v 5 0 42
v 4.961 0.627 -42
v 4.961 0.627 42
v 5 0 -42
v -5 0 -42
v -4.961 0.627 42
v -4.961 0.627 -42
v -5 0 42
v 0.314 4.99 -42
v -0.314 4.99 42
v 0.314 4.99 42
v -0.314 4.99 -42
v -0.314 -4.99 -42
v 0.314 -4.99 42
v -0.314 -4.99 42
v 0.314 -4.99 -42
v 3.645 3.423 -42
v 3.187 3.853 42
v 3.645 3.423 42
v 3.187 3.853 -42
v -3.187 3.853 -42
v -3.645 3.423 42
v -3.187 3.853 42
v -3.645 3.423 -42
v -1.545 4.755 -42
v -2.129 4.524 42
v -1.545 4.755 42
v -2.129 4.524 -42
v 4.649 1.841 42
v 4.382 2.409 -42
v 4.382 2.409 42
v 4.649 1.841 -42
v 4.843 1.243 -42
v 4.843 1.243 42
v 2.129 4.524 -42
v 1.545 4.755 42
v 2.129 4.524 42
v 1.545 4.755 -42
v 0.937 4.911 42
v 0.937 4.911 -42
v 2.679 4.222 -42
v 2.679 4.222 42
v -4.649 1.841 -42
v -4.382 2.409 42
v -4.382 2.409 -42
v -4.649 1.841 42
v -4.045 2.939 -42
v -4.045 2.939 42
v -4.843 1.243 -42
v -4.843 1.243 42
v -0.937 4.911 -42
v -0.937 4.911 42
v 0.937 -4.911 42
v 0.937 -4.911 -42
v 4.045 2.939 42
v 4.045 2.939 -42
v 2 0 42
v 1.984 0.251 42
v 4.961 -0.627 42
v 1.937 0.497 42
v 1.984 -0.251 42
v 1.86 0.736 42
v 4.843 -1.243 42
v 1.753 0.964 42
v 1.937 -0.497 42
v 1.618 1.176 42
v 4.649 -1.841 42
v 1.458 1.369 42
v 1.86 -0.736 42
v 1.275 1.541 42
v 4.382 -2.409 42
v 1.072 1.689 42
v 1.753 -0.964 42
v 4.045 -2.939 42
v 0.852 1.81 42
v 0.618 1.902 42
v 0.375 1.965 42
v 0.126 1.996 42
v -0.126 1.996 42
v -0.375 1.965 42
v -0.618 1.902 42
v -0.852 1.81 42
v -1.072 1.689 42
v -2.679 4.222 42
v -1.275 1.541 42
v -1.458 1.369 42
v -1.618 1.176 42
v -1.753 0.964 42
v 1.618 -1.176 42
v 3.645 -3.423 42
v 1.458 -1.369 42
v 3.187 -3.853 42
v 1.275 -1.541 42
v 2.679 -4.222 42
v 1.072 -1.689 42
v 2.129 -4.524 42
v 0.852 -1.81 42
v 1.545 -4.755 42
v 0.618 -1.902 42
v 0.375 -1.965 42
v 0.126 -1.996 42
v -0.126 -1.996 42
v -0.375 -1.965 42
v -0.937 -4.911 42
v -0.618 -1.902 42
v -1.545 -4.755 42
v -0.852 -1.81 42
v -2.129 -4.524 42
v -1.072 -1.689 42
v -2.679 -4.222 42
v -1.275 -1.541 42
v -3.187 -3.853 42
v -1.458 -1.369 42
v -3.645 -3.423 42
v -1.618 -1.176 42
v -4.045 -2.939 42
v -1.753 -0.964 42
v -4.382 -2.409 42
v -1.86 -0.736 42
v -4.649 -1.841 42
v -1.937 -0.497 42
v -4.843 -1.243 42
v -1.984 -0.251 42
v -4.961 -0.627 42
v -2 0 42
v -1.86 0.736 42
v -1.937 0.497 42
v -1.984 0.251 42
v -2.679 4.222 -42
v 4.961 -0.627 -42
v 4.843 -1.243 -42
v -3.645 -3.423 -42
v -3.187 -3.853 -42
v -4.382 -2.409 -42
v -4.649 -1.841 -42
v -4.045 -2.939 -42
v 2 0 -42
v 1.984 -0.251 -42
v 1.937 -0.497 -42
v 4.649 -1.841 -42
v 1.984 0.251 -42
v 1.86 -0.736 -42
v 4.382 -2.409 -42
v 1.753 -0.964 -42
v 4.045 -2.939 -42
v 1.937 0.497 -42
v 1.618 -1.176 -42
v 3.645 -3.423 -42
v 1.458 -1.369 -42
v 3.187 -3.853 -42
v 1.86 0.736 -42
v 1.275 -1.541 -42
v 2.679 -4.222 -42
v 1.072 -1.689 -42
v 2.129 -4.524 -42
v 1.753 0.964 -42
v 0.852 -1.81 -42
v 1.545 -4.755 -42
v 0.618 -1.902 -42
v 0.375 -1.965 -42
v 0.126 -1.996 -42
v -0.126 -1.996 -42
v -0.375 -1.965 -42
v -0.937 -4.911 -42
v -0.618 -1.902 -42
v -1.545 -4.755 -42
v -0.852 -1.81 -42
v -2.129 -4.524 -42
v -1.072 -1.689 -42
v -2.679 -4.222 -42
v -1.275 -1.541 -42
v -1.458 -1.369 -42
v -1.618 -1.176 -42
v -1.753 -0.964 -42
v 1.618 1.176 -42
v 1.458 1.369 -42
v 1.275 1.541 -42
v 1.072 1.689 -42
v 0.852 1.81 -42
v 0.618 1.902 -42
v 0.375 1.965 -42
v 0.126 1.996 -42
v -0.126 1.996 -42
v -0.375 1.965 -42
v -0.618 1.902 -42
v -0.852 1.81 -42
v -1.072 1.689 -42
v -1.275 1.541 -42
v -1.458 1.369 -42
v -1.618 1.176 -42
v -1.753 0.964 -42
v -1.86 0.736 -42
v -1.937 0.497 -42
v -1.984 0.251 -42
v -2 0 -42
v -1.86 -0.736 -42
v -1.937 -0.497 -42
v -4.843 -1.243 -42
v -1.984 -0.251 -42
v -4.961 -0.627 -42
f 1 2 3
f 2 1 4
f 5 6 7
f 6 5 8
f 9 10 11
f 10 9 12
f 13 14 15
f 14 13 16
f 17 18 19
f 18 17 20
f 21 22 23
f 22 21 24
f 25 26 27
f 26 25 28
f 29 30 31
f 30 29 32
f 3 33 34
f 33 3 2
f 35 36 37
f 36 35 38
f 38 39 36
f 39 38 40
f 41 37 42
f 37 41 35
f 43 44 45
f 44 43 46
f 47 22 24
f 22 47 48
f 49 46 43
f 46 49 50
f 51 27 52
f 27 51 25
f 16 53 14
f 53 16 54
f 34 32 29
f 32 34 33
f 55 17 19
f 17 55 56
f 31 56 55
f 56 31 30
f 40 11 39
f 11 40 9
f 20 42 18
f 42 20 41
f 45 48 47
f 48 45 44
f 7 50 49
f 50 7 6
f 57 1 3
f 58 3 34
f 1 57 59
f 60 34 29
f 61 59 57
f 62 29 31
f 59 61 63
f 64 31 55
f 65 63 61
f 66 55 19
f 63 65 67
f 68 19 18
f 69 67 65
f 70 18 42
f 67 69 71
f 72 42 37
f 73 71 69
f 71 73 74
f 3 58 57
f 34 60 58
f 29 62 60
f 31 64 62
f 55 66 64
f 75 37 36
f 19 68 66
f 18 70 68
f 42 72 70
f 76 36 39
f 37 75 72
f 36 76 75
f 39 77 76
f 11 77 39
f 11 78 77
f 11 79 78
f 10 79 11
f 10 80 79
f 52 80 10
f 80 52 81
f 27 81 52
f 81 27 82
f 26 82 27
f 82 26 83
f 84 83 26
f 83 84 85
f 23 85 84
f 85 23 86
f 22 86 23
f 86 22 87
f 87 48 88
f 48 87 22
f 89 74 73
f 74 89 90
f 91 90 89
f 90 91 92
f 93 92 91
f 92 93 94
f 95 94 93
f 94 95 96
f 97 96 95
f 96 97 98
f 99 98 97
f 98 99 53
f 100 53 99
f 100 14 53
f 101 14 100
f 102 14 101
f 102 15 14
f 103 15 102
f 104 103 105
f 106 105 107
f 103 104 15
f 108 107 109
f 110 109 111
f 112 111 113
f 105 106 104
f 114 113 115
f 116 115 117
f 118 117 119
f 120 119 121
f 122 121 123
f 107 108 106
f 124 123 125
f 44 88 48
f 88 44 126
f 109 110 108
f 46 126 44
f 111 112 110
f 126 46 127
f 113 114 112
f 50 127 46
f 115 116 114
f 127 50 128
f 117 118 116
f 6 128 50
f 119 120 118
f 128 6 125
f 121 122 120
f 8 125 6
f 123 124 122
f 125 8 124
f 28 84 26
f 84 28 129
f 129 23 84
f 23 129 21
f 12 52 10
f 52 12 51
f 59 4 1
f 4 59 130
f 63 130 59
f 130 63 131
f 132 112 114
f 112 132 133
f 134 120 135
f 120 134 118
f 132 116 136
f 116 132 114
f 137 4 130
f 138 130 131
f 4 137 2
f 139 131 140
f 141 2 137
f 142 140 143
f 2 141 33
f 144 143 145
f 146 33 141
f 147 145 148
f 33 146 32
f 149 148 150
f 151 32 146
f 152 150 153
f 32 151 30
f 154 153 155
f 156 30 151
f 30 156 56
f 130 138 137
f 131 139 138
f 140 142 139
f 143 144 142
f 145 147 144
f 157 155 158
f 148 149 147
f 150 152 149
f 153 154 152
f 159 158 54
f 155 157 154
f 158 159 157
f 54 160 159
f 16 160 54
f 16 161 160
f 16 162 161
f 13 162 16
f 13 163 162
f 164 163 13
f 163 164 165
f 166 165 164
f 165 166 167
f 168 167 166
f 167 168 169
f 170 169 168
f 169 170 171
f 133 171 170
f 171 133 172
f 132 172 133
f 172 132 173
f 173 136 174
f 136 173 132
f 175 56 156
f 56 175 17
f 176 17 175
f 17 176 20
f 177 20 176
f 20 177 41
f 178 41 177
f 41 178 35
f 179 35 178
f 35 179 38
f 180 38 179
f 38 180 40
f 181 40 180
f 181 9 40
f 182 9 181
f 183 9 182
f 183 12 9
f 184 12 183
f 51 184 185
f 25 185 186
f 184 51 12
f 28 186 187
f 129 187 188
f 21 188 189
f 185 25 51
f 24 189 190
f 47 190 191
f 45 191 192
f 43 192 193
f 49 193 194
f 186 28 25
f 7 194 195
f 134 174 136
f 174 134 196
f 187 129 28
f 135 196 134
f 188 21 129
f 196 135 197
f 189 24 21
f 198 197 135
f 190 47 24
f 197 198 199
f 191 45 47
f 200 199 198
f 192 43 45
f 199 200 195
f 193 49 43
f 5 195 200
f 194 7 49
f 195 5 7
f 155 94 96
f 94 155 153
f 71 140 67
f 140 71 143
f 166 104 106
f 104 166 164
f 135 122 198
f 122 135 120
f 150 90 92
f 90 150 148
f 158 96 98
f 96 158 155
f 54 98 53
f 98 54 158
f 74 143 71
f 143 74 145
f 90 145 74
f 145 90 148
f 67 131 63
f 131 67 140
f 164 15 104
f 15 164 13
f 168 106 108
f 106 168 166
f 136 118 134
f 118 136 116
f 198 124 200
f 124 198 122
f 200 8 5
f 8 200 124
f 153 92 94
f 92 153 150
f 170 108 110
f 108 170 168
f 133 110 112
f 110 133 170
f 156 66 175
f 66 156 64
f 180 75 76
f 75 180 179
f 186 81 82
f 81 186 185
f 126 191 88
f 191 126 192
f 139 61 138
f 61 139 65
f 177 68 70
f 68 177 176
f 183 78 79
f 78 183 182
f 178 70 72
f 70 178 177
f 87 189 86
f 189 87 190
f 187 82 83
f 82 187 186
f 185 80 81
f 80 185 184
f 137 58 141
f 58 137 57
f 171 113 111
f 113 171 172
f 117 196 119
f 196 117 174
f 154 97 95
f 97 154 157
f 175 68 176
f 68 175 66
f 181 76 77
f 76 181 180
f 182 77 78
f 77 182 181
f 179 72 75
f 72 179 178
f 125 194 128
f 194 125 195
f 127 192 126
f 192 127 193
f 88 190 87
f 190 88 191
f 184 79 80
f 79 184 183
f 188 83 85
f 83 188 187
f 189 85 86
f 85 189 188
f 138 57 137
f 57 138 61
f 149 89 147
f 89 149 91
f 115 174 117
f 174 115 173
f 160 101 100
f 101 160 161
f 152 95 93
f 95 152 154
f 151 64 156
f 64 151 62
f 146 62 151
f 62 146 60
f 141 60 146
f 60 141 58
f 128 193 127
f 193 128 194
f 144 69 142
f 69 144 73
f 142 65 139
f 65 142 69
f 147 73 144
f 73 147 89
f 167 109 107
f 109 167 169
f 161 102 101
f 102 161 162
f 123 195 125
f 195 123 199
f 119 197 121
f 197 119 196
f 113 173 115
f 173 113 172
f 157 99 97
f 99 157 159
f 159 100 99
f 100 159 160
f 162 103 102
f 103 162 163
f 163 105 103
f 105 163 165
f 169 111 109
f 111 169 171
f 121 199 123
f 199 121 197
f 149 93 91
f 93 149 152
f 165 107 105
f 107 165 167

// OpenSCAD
$fn = 50;


difference() {
	union() {
		translate(v = [0, 0, -42.0000000000]) {
			cylinder(h = 84, r = 5.0000000000);
		}
	}
	union() {
		translate(v = [0, 0, -100.0000000000]) {
			cylinder(h = 200, r = 2);
		}
	}
}
